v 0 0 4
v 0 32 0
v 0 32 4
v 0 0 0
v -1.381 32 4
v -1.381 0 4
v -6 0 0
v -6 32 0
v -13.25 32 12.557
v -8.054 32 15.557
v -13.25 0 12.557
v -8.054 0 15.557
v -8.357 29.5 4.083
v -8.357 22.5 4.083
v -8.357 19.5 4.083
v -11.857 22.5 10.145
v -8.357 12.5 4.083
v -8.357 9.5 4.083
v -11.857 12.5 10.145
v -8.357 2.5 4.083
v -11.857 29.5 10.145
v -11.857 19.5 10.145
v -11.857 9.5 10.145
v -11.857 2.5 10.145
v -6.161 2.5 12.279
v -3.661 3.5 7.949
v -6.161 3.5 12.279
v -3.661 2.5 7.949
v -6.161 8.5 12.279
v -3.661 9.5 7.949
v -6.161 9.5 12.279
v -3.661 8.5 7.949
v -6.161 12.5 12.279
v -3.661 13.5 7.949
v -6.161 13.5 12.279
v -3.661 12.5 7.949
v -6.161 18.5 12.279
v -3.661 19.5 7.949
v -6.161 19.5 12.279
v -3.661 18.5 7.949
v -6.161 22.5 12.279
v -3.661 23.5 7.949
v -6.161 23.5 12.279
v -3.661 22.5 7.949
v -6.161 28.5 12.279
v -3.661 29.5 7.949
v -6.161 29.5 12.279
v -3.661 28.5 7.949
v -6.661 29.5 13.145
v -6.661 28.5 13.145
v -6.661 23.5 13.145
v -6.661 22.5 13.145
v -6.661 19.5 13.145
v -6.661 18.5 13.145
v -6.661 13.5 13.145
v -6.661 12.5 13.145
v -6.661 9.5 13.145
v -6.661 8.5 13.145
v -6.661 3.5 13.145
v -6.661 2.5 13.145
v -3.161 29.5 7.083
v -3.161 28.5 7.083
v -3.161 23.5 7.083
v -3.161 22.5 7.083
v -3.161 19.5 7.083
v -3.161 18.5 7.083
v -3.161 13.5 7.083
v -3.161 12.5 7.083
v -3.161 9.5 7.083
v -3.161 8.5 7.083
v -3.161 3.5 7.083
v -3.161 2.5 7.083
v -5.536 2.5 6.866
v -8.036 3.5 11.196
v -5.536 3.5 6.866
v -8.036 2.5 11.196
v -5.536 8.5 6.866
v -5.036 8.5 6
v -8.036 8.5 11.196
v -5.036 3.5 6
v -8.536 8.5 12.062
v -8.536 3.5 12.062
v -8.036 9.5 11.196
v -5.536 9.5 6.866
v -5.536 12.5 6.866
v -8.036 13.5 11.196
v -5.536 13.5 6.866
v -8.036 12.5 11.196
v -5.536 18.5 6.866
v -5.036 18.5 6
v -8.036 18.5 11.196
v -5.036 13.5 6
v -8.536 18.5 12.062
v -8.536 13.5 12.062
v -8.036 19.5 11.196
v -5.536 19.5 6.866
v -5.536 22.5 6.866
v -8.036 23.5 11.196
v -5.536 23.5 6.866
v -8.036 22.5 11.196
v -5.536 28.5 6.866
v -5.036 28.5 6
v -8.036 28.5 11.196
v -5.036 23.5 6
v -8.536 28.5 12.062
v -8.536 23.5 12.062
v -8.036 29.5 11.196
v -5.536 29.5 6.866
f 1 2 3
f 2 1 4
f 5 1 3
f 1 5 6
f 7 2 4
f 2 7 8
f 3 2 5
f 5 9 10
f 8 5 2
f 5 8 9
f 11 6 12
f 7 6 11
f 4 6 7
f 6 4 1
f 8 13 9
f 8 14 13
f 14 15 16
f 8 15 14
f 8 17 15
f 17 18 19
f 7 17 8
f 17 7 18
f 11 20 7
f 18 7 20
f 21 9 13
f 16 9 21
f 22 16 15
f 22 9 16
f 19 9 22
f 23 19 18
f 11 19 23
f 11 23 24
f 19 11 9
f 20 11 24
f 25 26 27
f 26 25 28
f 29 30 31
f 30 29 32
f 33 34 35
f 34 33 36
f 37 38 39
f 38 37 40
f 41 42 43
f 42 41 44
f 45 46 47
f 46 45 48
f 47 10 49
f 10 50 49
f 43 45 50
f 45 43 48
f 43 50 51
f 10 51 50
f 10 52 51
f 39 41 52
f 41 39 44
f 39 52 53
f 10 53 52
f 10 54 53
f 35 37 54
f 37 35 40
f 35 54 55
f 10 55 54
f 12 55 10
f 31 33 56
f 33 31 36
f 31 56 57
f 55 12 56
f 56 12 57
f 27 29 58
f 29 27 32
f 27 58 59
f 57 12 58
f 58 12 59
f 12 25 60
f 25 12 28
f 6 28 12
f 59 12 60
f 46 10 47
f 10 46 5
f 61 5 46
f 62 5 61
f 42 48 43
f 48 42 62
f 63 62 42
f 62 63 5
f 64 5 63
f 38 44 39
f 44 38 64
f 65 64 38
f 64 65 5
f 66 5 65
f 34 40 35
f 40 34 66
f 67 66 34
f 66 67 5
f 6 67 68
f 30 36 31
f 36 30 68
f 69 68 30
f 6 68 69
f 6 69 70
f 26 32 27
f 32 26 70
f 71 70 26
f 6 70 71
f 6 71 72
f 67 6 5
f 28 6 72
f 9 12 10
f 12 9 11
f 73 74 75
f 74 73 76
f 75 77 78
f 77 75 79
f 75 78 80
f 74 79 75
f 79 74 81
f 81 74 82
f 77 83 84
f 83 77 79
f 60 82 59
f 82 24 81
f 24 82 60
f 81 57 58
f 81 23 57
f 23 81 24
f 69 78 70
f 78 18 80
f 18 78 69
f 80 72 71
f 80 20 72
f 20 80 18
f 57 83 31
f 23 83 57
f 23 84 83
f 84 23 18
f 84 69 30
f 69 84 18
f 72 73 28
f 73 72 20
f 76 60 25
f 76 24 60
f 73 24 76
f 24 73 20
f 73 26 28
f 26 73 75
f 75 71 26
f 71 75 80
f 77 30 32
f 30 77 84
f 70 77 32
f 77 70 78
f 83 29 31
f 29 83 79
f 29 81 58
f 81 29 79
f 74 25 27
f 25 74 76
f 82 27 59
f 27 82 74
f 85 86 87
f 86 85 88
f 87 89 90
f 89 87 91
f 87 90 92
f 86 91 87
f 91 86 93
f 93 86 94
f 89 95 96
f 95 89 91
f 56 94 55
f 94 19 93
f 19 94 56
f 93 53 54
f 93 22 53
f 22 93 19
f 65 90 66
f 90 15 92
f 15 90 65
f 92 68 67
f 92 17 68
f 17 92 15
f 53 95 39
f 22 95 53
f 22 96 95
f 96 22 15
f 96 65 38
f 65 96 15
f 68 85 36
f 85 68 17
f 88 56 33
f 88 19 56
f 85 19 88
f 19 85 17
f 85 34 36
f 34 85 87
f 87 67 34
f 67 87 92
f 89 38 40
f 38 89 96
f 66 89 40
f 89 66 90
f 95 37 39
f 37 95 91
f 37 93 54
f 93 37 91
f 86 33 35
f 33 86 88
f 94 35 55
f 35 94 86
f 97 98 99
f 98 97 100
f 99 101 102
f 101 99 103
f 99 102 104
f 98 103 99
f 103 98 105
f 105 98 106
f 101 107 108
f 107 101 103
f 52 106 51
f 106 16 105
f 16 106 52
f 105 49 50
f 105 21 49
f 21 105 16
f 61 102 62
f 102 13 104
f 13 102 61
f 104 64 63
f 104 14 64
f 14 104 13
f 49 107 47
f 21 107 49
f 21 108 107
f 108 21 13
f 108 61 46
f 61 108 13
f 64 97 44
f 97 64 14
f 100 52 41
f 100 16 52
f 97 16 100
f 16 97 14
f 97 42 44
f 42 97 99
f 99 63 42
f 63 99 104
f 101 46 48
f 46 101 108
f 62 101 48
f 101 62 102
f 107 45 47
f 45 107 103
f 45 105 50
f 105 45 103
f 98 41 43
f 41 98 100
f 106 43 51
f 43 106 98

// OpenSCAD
// file: 3mmSocketHeadHole.scad
//3mmSocketHeadHole.scad - Dr.Gerg's 3mm Socket Head Hole
//
// OpenSCAD definition file
// https://www.drgerg.com
// PARAMETER DEFINITIONS
    cylaH = 4.2;
    cylaD = 6.4;
    cylbH = 12;
    cylbD = 3.3;
module SocHdHole(){
    $fn=48;
    cylinder(cylaH,d=cylaD,false);
    translate([0,0,cylaH-1])
    cylinder(cylbH,d=cylbD,false);
}
SocHdHole();
// main file
// ArticArm1602_base.scad - Articulating Arm Mount for 1602A LCD
// 2022 Gregory A Sanders
//
//
// hole for 3mm machine screw = 3.2
//

use <3mmSocketHeadHole.scad>

$fn=120;
module base(){
    difference(){
        cube([30,32,4]);
        rotate([180,0,0])
        translate([6,-15,-6])
        SocHdHole();      
        rotate([180,0,0])
        translate([24,-15,-6])
        SocHdHole();

    }
}

module buttonhole(){
                cube([4,7,7]);
                cube([40,1,1]);
                translate([0,6,0])
                cube([40,1,1]);
                translate([0,6,6])
                cube([40,1,1]);
                translate([0,0,6])
                cube([40,1,1]);
                }

module buttonbase(){
    difference(){
        union(){
            translate([-6,0,0])
            cube([6,32,4]);
            translate([-6,0,0])
            rotate([0,-30,0])
            cube([6,32,14.5]);
            }
            union(){
                translate([-8.5,2.5,4])
                rotate([0,-30,0])
                #buttonhole();
                translate([-8.5,12.5,4])
                rotate([0,-30,0])
                #buttonhole();
                translate([-8.5,22.5,4])
                rotate([0,-30,0])
                #buttonhole();
            }
        }
}



module aacomposite(){
    // base();
    buttonbase();
}

aacomposite();
// buttonhole();
